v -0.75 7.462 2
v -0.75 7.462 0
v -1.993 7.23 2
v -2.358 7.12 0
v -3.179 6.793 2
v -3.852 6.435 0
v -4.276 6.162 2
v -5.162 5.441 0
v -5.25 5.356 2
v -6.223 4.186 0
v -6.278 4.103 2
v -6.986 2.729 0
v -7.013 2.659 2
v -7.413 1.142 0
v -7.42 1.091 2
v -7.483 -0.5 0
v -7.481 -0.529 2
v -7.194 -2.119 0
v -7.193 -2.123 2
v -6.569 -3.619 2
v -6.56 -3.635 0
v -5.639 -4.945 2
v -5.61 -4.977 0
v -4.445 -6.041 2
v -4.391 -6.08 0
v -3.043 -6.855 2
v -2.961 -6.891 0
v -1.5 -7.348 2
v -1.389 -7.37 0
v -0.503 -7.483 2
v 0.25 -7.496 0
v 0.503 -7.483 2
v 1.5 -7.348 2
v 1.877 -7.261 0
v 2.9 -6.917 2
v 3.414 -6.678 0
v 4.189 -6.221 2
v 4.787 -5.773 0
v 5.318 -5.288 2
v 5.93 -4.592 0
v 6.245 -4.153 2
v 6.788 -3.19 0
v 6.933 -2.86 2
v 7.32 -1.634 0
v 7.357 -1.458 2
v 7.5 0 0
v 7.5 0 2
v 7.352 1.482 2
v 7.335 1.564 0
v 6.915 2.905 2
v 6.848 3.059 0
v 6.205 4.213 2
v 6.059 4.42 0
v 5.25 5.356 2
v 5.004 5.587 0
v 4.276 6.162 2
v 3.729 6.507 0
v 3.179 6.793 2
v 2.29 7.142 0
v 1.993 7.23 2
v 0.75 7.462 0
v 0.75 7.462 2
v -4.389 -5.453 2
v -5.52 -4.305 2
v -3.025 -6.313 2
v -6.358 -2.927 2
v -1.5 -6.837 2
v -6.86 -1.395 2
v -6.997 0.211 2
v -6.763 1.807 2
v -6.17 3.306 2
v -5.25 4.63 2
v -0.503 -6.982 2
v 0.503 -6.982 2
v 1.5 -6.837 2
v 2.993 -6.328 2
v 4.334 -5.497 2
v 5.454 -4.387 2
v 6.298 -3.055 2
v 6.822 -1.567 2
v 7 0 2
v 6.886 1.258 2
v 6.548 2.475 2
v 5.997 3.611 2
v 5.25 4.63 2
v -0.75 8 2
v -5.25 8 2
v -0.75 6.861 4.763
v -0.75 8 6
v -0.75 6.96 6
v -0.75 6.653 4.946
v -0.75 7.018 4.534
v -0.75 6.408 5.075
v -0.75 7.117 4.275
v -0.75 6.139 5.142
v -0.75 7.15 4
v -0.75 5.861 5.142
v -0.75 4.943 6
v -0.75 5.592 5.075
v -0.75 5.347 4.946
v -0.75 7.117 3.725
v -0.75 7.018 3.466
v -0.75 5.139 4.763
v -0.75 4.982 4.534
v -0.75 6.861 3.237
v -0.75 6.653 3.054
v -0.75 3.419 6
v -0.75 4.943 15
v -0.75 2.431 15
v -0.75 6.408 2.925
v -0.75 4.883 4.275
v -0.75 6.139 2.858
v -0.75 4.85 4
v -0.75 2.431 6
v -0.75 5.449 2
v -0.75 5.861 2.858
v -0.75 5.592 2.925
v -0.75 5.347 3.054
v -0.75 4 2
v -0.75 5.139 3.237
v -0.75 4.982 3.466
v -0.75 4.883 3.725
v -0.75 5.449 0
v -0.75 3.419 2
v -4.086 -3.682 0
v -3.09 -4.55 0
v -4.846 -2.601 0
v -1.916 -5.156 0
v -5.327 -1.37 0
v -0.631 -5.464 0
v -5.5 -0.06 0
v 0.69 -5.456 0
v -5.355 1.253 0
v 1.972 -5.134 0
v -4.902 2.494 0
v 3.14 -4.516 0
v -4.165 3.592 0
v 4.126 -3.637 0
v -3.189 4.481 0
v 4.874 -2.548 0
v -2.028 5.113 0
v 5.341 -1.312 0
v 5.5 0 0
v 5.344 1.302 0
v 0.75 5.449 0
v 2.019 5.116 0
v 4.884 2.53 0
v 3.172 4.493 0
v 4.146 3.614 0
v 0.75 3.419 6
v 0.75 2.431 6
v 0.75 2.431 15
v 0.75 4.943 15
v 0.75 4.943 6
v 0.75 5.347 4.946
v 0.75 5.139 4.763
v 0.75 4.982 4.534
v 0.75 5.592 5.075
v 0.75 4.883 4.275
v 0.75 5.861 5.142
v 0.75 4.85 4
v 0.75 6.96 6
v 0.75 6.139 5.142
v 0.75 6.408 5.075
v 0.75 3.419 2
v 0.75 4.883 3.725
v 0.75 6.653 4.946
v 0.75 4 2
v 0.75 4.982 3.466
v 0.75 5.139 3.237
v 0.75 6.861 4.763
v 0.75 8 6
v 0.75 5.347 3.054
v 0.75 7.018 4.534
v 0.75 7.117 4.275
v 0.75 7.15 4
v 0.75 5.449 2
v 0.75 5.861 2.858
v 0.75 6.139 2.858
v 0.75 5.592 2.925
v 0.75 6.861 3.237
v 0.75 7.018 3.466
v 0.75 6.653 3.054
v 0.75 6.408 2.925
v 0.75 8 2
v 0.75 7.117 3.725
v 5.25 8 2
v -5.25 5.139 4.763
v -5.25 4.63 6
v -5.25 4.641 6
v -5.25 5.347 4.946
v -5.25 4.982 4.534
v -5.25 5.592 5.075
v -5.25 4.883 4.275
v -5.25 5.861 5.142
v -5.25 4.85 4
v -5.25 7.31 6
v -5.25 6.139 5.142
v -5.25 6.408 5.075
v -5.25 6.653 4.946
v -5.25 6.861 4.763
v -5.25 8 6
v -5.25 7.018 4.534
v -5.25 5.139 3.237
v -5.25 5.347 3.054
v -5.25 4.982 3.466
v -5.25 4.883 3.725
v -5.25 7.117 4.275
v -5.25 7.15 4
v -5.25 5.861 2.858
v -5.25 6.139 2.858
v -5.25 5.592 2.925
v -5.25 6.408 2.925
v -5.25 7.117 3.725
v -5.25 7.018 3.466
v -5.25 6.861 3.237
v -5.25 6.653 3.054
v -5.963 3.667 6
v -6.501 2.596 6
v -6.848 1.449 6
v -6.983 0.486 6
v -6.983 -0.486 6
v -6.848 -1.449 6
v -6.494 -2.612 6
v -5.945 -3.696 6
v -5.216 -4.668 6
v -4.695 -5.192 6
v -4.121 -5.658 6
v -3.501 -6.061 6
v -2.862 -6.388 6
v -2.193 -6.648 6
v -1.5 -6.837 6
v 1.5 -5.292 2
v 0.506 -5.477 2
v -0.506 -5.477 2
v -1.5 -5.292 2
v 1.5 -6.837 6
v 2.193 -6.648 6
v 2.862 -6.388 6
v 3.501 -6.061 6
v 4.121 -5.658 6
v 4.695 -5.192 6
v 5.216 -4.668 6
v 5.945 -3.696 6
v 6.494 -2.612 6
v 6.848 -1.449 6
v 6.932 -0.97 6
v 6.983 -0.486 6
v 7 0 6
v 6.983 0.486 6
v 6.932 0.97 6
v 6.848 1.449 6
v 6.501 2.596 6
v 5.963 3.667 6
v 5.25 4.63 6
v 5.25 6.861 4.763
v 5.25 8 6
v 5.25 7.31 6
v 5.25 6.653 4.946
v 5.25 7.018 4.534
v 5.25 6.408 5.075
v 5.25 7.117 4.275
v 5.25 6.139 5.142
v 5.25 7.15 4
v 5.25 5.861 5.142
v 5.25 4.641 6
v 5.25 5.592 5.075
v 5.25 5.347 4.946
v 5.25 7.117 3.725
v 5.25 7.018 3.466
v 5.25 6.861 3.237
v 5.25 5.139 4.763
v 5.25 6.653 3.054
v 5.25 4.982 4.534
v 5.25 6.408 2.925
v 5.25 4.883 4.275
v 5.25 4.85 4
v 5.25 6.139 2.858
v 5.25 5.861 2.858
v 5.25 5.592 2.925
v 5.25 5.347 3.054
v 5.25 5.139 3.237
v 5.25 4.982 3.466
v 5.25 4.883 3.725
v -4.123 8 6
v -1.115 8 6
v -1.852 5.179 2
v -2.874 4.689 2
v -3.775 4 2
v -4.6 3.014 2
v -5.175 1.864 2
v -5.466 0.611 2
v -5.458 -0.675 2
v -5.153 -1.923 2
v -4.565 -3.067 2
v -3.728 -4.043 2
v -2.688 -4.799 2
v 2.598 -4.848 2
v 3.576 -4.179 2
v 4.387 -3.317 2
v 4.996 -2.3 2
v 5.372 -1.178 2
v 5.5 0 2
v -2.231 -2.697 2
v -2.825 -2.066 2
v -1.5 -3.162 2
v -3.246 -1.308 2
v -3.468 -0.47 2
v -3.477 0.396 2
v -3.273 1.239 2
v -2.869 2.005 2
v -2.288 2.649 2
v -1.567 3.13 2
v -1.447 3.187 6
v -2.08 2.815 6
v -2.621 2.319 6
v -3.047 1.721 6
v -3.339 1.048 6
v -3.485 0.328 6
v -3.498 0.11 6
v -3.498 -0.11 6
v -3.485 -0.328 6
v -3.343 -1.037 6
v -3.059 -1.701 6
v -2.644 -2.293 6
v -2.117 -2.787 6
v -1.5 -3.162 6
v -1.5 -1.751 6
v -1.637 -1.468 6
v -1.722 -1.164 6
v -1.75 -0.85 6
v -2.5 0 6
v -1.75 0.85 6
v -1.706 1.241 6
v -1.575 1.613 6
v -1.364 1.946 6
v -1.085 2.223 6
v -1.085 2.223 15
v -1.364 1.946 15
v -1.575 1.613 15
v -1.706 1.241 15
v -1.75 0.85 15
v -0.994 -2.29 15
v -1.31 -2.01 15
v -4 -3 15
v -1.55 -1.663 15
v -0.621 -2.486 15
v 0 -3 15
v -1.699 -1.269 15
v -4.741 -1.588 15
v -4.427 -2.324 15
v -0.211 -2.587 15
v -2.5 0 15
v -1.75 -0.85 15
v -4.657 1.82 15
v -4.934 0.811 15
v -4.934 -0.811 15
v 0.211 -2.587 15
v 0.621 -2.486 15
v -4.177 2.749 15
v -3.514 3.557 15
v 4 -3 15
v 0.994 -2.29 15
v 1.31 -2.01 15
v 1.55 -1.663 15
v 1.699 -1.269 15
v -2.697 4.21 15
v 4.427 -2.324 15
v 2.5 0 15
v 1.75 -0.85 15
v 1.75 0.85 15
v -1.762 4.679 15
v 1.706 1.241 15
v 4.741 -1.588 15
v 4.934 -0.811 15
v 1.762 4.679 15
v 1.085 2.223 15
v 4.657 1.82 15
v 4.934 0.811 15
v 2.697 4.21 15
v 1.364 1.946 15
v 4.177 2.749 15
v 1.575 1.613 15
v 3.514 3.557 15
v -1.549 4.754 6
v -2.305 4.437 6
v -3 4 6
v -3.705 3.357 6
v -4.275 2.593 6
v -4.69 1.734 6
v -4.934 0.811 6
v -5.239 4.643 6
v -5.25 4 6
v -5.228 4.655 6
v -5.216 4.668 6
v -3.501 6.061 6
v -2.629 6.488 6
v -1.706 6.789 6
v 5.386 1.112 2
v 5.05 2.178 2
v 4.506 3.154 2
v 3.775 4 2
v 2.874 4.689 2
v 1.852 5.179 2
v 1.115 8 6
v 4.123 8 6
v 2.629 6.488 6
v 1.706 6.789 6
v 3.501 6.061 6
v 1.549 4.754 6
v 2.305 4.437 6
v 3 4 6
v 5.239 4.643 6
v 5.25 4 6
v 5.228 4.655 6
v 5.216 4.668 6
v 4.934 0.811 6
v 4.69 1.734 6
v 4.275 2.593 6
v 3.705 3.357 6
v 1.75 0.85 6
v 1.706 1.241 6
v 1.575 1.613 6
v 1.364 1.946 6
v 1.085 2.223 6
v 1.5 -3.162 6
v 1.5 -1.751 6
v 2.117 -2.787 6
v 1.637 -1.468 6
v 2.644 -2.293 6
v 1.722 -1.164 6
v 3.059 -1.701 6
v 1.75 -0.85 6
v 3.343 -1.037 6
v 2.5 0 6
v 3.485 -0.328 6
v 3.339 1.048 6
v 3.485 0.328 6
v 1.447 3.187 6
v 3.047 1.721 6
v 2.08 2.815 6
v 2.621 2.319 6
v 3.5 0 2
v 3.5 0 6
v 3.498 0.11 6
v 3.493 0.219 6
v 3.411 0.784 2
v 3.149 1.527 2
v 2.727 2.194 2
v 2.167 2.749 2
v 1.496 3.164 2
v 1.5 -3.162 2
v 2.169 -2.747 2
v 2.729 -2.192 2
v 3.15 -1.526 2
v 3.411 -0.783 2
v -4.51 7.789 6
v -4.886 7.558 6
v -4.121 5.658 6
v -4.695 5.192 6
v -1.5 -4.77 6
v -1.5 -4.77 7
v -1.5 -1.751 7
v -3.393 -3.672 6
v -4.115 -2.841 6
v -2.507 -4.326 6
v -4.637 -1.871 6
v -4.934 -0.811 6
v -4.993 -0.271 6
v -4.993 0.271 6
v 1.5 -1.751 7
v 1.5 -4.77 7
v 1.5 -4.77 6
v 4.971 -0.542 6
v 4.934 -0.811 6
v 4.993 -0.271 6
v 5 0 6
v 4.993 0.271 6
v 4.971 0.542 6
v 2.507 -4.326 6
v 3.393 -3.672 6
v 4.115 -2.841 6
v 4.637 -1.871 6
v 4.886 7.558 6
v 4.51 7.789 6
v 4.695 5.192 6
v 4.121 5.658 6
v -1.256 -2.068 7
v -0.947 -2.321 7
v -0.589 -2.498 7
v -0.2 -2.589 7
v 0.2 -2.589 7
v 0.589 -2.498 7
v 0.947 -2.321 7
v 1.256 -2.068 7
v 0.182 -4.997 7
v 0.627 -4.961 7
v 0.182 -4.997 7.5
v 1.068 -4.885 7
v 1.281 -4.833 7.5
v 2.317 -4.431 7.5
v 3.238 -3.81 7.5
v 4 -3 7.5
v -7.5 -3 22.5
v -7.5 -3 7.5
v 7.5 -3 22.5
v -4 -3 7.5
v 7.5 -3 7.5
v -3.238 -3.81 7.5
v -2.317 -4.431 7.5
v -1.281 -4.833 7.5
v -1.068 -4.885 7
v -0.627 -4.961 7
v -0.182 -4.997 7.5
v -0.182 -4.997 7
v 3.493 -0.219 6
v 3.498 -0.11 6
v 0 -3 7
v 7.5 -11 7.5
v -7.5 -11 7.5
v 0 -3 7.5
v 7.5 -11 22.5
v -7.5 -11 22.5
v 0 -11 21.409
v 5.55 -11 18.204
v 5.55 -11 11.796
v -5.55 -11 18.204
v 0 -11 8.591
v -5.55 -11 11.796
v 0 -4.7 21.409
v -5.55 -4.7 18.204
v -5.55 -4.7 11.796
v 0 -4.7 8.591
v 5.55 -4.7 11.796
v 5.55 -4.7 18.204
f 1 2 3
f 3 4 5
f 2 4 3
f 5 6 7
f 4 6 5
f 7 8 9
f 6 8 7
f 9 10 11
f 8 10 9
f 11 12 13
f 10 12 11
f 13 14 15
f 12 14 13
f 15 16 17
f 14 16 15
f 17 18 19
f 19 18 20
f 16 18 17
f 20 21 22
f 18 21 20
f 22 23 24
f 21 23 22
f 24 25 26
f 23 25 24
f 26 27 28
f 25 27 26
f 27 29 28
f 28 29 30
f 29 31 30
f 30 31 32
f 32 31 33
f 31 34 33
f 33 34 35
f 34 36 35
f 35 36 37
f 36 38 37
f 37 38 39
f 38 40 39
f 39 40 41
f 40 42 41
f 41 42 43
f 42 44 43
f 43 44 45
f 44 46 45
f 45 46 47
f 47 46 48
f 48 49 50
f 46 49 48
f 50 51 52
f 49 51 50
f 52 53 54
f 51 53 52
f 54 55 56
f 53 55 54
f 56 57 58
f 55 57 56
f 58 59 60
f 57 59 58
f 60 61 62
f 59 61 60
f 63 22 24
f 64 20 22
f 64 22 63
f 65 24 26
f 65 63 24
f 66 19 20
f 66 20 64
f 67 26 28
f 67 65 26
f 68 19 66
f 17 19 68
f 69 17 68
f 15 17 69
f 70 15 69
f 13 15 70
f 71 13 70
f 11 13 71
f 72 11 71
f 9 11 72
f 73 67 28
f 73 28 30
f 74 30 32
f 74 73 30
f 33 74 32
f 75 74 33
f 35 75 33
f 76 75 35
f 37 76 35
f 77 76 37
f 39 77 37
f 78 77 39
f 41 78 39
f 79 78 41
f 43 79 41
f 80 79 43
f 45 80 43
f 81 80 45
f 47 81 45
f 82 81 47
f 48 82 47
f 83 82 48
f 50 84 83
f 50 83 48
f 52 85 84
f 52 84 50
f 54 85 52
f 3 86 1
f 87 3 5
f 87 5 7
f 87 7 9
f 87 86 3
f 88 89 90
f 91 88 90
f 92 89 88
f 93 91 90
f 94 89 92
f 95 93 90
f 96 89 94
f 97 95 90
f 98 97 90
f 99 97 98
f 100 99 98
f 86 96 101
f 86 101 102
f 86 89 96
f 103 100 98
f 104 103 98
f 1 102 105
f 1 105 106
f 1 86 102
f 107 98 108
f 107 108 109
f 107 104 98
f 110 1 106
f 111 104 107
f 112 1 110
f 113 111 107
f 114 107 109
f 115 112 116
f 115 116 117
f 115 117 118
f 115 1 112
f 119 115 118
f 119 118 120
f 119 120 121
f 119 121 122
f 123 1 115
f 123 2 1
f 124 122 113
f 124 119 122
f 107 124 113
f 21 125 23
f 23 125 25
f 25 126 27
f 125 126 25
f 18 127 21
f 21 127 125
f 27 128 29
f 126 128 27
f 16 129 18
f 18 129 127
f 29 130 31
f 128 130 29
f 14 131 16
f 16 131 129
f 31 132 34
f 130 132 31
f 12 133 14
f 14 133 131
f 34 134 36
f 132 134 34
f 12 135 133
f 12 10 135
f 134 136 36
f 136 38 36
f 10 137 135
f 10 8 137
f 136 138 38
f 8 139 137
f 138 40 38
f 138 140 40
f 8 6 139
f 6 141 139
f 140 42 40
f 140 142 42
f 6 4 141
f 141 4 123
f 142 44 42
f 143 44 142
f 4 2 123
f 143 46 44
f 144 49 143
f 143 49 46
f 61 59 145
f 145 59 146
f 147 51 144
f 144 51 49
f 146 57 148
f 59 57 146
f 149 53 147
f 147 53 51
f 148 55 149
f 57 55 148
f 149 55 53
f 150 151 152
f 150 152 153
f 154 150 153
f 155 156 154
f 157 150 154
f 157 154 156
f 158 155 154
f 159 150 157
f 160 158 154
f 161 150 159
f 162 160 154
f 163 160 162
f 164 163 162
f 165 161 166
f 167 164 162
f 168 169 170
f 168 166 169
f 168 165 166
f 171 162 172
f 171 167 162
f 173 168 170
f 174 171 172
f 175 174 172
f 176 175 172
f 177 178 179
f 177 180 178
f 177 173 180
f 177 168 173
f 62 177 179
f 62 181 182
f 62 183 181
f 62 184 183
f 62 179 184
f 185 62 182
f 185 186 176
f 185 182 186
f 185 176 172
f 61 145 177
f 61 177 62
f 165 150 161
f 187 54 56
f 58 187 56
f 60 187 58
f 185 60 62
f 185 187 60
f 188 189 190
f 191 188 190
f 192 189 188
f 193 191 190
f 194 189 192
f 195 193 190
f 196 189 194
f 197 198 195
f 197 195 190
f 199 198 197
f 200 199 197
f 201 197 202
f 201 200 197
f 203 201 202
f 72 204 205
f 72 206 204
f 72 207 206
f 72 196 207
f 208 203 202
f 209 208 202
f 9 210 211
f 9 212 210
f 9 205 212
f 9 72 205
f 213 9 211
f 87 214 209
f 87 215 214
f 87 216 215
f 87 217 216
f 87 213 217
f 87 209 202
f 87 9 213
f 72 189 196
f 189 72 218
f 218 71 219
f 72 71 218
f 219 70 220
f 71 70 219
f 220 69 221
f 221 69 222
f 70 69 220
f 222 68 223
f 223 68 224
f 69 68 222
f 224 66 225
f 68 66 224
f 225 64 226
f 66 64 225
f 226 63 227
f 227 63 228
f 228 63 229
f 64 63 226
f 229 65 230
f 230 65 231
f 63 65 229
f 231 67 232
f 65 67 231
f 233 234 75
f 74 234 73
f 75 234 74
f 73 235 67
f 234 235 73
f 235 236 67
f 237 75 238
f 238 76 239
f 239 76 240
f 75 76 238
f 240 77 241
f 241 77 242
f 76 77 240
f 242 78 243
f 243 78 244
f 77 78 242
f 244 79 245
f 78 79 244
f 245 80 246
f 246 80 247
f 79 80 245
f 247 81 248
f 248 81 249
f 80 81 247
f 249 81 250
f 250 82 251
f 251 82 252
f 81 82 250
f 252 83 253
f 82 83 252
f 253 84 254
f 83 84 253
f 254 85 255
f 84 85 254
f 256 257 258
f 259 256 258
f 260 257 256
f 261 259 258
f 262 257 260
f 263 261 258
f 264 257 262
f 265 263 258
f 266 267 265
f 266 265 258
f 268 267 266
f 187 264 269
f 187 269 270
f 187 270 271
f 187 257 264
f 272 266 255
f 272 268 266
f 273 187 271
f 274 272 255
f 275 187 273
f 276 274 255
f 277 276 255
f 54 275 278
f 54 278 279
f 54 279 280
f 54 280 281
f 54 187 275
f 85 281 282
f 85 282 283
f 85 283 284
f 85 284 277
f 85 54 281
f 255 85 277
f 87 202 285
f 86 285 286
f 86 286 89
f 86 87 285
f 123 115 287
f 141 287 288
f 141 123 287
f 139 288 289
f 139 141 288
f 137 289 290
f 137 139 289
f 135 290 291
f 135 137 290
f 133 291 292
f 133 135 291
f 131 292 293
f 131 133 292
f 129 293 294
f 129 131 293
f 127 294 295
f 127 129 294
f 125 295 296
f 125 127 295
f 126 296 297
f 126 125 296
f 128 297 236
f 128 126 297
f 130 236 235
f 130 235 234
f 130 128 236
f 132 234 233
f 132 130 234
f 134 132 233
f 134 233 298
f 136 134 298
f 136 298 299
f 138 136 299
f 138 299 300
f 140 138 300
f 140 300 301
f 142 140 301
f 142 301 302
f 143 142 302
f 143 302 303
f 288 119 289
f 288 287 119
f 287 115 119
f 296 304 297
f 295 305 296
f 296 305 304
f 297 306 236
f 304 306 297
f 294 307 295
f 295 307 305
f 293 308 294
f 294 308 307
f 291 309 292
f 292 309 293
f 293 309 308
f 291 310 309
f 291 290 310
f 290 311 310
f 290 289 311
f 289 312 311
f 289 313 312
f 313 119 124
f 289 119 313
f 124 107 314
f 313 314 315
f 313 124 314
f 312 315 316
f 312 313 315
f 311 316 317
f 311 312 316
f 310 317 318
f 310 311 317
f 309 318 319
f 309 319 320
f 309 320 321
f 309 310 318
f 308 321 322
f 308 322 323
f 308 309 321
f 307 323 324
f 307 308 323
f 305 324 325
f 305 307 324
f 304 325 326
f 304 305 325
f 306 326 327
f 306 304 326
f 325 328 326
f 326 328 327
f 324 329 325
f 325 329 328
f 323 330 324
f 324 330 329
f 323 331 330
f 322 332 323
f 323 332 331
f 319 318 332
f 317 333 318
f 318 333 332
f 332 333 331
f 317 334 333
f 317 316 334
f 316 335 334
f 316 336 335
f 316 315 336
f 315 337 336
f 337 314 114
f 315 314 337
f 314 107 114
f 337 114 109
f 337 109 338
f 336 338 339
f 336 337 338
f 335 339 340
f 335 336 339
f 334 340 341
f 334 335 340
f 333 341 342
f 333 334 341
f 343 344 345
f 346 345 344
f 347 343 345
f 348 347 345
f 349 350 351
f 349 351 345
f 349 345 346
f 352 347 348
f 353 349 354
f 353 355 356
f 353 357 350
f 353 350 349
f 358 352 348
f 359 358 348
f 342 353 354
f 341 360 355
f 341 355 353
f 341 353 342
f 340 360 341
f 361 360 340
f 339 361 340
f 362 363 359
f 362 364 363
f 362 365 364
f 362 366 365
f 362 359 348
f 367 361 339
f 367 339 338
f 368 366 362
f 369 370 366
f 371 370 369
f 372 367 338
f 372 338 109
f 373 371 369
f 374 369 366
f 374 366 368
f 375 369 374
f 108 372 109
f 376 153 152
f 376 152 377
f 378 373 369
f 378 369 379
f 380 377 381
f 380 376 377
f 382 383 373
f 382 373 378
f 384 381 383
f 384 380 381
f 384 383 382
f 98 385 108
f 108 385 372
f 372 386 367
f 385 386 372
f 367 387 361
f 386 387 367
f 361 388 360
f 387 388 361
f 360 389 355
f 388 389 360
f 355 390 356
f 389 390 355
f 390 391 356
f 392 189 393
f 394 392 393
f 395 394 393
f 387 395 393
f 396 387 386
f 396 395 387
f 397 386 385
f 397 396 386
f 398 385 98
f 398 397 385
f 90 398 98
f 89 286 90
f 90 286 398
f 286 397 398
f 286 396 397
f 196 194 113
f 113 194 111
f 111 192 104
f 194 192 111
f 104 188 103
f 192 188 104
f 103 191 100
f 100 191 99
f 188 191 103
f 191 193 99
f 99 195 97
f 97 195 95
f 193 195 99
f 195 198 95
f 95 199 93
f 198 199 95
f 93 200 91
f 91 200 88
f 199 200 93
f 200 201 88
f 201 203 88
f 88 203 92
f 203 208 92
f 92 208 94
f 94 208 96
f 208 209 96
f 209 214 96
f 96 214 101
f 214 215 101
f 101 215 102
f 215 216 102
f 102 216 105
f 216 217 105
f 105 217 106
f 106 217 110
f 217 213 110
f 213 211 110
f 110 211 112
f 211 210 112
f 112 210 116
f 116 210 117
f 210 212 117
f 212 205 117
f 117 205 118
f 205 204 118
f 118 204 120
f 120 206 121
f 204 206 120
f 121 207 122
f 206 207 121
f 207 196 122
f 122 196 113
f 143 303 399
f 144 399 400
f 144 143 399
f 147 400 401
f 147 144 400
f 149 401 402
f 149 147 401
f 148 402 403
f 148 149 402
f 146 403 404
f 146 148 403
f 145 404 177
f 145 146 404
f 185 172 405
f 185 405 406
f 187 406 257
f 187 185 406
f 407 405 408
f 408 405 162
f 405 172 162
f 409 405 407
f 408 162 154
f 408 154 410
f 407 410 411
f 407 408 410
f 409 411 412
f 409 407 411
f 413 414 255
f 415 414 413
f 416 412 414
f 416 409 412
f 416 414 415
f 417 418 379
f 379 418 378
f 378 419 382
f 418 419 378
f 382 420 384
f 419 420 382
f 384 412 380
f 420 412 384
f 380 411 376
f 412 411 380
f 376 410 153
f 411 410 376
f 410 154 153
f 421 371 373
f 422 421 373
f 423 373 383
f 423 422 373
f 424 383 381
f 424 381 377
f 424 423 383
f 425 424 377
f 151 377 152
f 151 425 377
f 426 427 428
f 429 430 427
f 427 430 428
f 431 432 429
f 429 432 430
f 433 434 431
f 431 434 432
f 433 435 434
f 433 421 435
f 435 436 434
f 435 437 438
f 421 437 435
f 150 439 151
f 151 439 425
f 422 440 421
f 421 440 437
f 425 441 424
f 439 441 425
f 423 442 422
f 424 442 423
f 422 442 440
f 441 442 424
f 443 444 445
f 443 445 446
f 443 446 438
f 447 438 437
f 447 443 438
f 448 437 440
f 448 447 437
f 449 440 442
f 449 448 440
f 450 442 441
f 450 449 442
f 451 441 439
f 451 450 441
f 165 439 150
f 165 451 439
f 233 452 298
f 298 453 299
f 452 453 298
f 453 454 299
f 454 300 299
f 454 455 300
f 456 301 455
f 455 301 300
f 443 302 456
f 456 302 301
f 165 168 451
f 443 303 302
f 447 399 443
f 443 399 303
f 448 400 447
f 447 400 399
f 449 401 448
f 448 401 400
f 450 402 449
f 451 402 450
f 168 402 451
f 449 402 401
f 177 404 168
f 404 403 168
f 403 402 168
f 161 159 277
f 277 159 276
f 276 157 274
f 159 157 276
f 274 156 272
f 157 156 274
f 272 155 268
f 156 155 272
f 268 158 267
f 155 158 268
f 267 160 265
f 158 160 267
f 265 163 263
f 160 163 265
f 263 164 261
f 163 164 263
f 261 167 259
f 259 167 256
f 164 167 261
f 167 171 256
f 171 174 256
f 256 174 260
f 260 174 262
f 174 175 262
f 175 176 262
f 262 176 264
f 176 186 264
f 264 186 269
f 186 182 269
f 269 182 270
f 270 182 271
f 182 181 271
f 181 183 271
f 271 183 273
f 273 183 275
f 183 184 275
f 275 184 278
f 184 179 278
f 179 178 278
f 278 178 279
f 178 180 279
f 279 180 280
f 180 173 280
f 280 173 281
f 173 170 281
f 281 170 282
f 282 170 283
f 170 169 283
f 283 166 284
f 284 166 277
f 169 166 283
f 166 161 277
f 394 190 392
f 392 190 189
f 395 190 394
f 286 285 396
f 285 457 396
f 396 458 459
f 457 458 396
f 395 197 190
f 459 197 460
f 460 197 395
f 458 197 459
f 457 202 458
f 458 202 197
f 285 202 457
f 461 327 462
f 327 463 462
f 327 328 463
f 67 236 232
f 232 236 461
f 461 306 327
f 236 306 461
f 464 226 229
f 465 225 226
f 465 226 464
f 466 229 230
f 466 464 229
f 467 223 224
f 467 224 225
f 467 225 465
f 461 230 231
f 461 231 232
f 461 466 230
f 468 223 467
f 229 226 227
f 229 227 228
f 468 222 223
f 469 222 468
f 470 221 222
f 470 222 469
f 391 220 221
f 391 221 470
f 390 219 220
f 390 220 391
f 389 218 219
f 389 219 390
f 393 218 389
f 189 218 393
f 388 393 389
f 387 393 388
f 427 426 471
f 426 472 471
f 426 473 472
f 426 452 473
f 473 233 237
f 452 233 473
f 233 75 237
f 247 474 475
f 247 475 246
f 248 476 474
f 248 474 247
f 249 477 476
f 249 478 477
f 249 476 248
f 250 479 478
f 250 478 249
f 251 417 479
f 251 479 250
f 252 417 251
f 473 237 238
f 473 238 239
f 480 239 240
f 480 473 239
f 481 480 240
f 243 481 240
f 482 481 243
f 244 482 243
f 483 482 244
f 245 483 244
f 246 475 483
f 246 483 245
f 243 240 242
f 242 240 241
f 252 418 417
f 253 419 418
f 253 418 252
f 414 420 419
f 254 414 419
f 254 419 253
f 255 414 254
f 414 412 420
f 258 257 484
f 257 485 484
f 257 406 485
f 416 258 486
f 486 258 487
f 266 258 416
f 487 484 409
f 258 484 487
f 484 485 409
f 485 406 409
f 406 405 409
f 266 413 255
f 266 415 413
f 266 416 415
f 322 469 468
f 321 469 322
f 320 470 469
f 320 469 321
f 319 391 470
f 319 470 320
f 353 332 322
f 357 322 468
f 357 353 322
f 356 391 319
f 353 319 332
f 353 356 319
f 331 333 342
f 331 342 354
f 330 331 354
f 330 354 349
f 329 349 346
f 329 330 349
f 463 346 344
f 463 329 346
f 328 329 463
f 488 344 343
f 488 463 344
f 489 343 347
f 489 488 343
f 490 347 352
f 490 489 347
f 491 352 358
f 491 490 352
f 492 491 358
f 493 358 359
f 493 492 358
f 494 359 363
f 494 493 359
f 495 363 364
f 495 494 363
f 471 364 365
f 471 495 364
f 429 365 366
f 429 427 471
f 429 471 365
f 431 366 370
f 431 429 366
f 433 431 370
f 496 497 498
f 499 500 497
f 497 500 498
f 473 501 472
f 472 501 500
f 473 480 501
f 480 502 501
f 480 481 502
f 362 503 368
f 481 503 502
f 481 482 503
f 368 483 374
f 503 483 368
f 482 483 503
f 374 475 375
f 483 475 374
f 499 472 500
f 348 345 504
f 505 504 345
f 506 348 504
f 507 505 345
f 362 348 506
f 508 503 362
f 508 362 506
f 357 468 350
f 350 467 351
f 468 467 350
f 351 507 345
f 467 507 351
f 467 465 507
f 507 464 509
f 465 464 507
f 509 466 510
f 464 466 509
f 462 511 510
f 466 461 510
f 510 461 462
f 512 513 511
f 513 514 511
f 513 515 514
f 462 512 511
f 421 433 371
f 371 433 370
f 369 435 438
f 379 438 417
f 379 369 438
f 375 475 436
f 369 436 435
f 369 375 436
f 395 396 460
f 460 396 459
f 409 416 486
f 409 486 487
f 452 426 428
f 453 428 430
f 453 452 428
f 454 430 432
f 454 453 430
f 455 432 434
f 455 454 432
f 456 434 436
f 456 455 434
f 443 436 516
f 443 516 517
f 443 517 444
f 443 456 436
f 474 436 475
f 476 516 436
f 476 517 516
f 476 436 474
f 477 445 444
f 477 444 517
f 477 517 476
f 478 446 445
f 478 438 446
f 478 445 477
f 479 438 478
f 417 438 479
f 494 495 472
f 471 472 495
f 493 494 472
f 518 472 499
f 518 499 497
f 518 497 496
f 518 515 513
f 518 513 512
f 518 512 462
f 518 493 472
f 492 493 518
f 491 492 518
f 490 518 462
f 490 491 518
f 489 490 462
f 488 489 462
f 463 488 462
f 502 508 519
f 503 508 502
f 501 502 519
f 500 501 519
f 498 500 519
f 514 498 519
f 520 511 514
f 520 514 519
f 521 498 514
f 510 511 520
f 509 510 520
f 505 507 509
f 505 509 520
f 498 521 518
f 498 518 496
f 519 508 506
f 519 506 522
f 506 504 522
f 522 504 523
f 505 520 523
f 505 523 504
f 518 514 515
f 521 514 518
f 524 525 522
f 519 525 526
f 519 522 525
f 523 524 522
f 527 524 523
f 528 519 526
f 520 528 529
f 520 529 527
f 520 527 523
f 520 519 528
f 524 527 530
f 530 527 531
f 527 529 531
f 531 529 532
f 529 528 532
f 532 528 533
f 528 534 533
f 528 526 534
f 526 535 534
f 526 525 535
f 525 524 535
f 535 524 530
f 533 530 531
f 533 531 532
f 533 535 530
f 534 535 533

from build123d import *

# Parameters (mm, degrees)
SKETCH_R        = 7.5
SKETCH_R_2      = 5.5
PAD_DEPTH       = 2
SKETCH001_R     = 7
SKETCH001_R_2   = 3.5
PAD001_DEPTH    = 4
SKETCH002_R     = 5
PAD002_DEPTH    = 9
SKETCH003_W     = 10.5
SKETCH003_H     = 4
PAD003_DEPTH    = 4
SKETCH004_R     = 1.15
POCKET_DEPTH    = 12.751
SKETCH005_R     = 9
POCKET001_DEPTH = 9
SKETCH006_W     = 1.5
SKETCH006_H     = 9
POCKET002_DEPTH = 15.001
SKETCH007_W     = 3
SKETCH007_H     = 9
POCKET003_DEPTH = 5
SKETCH008_W     = 15
SKETCH008_H     = 8
PAD004_DEPTH    = 7.5
POCKET004_DEPTH = 6.3


with BuildPart() as part:
    # Sketch → Pad (new body)
    with BuildSketch(Plane.XY):
        Circle(SKETCH_R)
        Circle(SKETCH_R_2, mode=Mode.SUBTRACT)
    extrude(amount=PAD_DEPTH)

    # Sketch001 (on Face4 of Pad) → Pad001 (join)
    with BuildSketch(Plane.XY.offset(2)):
        Circle(SKETCH001_R)
        Circle(SKETCH001_R_2, mode=Mode.SUBTRACT)
    extrude(amount=PAD001_DEPTH)

    # Sketch002 (on Face7 of Pad001) → Pad002 (join)
    with BuildSketch(Plane.XY.offset(6)):
        Circle(SKETCH002_R)
        with BuildLine():
            ThreePointArc((1.75, 0.85), (0, 2.6), (-1.75, 0.85))
            Line((-1.75, 0.85), (-1.75, -0.85))
            ThreePointArc((-1.75, -0.85), (0, -2.6), (1.75, -0.85))
            Line((1.75, 0.85), (1.75, -0.85))
        make_face(mode=Mode.SUBTRACT)
    extrude(amount=PAD002_DEPTH)

    # Sketch003 (on Face3 of Pad002) → Pad003 (join)
    with BuildSketch(Plane.XY.offset(2)):
        with Locations((0, 6)):
            Rectangle(SKETCH003_W, SKETCH003_H)
    extrude(amount=PAD003_DEPTH)

    # Sketch004 (on Face6 of Pad003) → Pocket (cut, through all)
    with BuildSketch(Plane(origin=(-5.25, 0, 0), x_dir=(0, -1, 0), z_dir=(-1, 0, 0))):
        with Locations((-6, 4)):
            Circle(SKETCH004_R)
    extrude(amount=-POCKET_DEPTH, mode=Mode.SUBTRACT)

    # Sketch005 (on Face20 of Pocket) → Pocket001 (cut)
    with BuildSketch(Plane.XY.offset(15)):
        Circle(SKETCH005_R)
        Polygon((0.5, 8.5), (0, 3), (-0.5, 8.5), (-8.5, 2), (-2.5, 0), (-8.5, -2), (-0.5, -8.5), (0, -3), (0.5, -8.5), (8.5, -2), (2.5, 0), (8.5, 2), align=None, mode=Mode.SUBTRACT)
    extrude(amount=-POCKET001_DEPTH, mode=Mode.SUBTRACT)

    # Sketch006 (on Face2 of Pocket001) → Pocket002 (cut, through all)
    with BuildSketch(Plane(origin=(0, 0, 0), x_dir=(1, 0, 0), z_dir=(0, 0, -1))):
        with Locations((0, -4.5)):
            Rectangle(SKETCH006_W, SKETCH006_H)
    extrude(amount=-POCKET002_DEPTH, mode=Mode.SUBTRACT)

    # Sketch007 (on Face16 of Pocket002) → Pocket003 (cut)
    with BuildSketch(Plane(origin=(0, 0, 2), x_dir=(1, 0, 0), z_dir=(0, 0, -1))):
        with Locations((0, 4.5)):
            Rectangle(SKETCH007_W, SKETCH007_H)
    extrude(amount=-POCKET003_DEPTH, mode=Mode.SUBTRACT)

    # Sketch008 (on Face24 of Pocket003) → Pad004 (join, symmetric)
    with BuildSketch(Plane.XY.offset(15)):
        with Locations((0, -7)):
            Rectangle(SKETCH008_W, SKETCH008_H)
    extrude(amount=PAD004_DEPTH, both=True)

    # Sketch009 (on Face78 of Pad004) → Pocket004 (cut)
    with BuildSketch(Plane.XZ.offset(11)):
        Polygon((0, 21.408588), (-5.55, 18.204294), (-5.55, 11.795706), (0, 8.591412), (5.55, 11.795706), (5.55, 18.204294), align=None)
    extrude(amount=-POCKET004_DEPTH, mode=Mode.SUBTRACT)


solid = part.part
